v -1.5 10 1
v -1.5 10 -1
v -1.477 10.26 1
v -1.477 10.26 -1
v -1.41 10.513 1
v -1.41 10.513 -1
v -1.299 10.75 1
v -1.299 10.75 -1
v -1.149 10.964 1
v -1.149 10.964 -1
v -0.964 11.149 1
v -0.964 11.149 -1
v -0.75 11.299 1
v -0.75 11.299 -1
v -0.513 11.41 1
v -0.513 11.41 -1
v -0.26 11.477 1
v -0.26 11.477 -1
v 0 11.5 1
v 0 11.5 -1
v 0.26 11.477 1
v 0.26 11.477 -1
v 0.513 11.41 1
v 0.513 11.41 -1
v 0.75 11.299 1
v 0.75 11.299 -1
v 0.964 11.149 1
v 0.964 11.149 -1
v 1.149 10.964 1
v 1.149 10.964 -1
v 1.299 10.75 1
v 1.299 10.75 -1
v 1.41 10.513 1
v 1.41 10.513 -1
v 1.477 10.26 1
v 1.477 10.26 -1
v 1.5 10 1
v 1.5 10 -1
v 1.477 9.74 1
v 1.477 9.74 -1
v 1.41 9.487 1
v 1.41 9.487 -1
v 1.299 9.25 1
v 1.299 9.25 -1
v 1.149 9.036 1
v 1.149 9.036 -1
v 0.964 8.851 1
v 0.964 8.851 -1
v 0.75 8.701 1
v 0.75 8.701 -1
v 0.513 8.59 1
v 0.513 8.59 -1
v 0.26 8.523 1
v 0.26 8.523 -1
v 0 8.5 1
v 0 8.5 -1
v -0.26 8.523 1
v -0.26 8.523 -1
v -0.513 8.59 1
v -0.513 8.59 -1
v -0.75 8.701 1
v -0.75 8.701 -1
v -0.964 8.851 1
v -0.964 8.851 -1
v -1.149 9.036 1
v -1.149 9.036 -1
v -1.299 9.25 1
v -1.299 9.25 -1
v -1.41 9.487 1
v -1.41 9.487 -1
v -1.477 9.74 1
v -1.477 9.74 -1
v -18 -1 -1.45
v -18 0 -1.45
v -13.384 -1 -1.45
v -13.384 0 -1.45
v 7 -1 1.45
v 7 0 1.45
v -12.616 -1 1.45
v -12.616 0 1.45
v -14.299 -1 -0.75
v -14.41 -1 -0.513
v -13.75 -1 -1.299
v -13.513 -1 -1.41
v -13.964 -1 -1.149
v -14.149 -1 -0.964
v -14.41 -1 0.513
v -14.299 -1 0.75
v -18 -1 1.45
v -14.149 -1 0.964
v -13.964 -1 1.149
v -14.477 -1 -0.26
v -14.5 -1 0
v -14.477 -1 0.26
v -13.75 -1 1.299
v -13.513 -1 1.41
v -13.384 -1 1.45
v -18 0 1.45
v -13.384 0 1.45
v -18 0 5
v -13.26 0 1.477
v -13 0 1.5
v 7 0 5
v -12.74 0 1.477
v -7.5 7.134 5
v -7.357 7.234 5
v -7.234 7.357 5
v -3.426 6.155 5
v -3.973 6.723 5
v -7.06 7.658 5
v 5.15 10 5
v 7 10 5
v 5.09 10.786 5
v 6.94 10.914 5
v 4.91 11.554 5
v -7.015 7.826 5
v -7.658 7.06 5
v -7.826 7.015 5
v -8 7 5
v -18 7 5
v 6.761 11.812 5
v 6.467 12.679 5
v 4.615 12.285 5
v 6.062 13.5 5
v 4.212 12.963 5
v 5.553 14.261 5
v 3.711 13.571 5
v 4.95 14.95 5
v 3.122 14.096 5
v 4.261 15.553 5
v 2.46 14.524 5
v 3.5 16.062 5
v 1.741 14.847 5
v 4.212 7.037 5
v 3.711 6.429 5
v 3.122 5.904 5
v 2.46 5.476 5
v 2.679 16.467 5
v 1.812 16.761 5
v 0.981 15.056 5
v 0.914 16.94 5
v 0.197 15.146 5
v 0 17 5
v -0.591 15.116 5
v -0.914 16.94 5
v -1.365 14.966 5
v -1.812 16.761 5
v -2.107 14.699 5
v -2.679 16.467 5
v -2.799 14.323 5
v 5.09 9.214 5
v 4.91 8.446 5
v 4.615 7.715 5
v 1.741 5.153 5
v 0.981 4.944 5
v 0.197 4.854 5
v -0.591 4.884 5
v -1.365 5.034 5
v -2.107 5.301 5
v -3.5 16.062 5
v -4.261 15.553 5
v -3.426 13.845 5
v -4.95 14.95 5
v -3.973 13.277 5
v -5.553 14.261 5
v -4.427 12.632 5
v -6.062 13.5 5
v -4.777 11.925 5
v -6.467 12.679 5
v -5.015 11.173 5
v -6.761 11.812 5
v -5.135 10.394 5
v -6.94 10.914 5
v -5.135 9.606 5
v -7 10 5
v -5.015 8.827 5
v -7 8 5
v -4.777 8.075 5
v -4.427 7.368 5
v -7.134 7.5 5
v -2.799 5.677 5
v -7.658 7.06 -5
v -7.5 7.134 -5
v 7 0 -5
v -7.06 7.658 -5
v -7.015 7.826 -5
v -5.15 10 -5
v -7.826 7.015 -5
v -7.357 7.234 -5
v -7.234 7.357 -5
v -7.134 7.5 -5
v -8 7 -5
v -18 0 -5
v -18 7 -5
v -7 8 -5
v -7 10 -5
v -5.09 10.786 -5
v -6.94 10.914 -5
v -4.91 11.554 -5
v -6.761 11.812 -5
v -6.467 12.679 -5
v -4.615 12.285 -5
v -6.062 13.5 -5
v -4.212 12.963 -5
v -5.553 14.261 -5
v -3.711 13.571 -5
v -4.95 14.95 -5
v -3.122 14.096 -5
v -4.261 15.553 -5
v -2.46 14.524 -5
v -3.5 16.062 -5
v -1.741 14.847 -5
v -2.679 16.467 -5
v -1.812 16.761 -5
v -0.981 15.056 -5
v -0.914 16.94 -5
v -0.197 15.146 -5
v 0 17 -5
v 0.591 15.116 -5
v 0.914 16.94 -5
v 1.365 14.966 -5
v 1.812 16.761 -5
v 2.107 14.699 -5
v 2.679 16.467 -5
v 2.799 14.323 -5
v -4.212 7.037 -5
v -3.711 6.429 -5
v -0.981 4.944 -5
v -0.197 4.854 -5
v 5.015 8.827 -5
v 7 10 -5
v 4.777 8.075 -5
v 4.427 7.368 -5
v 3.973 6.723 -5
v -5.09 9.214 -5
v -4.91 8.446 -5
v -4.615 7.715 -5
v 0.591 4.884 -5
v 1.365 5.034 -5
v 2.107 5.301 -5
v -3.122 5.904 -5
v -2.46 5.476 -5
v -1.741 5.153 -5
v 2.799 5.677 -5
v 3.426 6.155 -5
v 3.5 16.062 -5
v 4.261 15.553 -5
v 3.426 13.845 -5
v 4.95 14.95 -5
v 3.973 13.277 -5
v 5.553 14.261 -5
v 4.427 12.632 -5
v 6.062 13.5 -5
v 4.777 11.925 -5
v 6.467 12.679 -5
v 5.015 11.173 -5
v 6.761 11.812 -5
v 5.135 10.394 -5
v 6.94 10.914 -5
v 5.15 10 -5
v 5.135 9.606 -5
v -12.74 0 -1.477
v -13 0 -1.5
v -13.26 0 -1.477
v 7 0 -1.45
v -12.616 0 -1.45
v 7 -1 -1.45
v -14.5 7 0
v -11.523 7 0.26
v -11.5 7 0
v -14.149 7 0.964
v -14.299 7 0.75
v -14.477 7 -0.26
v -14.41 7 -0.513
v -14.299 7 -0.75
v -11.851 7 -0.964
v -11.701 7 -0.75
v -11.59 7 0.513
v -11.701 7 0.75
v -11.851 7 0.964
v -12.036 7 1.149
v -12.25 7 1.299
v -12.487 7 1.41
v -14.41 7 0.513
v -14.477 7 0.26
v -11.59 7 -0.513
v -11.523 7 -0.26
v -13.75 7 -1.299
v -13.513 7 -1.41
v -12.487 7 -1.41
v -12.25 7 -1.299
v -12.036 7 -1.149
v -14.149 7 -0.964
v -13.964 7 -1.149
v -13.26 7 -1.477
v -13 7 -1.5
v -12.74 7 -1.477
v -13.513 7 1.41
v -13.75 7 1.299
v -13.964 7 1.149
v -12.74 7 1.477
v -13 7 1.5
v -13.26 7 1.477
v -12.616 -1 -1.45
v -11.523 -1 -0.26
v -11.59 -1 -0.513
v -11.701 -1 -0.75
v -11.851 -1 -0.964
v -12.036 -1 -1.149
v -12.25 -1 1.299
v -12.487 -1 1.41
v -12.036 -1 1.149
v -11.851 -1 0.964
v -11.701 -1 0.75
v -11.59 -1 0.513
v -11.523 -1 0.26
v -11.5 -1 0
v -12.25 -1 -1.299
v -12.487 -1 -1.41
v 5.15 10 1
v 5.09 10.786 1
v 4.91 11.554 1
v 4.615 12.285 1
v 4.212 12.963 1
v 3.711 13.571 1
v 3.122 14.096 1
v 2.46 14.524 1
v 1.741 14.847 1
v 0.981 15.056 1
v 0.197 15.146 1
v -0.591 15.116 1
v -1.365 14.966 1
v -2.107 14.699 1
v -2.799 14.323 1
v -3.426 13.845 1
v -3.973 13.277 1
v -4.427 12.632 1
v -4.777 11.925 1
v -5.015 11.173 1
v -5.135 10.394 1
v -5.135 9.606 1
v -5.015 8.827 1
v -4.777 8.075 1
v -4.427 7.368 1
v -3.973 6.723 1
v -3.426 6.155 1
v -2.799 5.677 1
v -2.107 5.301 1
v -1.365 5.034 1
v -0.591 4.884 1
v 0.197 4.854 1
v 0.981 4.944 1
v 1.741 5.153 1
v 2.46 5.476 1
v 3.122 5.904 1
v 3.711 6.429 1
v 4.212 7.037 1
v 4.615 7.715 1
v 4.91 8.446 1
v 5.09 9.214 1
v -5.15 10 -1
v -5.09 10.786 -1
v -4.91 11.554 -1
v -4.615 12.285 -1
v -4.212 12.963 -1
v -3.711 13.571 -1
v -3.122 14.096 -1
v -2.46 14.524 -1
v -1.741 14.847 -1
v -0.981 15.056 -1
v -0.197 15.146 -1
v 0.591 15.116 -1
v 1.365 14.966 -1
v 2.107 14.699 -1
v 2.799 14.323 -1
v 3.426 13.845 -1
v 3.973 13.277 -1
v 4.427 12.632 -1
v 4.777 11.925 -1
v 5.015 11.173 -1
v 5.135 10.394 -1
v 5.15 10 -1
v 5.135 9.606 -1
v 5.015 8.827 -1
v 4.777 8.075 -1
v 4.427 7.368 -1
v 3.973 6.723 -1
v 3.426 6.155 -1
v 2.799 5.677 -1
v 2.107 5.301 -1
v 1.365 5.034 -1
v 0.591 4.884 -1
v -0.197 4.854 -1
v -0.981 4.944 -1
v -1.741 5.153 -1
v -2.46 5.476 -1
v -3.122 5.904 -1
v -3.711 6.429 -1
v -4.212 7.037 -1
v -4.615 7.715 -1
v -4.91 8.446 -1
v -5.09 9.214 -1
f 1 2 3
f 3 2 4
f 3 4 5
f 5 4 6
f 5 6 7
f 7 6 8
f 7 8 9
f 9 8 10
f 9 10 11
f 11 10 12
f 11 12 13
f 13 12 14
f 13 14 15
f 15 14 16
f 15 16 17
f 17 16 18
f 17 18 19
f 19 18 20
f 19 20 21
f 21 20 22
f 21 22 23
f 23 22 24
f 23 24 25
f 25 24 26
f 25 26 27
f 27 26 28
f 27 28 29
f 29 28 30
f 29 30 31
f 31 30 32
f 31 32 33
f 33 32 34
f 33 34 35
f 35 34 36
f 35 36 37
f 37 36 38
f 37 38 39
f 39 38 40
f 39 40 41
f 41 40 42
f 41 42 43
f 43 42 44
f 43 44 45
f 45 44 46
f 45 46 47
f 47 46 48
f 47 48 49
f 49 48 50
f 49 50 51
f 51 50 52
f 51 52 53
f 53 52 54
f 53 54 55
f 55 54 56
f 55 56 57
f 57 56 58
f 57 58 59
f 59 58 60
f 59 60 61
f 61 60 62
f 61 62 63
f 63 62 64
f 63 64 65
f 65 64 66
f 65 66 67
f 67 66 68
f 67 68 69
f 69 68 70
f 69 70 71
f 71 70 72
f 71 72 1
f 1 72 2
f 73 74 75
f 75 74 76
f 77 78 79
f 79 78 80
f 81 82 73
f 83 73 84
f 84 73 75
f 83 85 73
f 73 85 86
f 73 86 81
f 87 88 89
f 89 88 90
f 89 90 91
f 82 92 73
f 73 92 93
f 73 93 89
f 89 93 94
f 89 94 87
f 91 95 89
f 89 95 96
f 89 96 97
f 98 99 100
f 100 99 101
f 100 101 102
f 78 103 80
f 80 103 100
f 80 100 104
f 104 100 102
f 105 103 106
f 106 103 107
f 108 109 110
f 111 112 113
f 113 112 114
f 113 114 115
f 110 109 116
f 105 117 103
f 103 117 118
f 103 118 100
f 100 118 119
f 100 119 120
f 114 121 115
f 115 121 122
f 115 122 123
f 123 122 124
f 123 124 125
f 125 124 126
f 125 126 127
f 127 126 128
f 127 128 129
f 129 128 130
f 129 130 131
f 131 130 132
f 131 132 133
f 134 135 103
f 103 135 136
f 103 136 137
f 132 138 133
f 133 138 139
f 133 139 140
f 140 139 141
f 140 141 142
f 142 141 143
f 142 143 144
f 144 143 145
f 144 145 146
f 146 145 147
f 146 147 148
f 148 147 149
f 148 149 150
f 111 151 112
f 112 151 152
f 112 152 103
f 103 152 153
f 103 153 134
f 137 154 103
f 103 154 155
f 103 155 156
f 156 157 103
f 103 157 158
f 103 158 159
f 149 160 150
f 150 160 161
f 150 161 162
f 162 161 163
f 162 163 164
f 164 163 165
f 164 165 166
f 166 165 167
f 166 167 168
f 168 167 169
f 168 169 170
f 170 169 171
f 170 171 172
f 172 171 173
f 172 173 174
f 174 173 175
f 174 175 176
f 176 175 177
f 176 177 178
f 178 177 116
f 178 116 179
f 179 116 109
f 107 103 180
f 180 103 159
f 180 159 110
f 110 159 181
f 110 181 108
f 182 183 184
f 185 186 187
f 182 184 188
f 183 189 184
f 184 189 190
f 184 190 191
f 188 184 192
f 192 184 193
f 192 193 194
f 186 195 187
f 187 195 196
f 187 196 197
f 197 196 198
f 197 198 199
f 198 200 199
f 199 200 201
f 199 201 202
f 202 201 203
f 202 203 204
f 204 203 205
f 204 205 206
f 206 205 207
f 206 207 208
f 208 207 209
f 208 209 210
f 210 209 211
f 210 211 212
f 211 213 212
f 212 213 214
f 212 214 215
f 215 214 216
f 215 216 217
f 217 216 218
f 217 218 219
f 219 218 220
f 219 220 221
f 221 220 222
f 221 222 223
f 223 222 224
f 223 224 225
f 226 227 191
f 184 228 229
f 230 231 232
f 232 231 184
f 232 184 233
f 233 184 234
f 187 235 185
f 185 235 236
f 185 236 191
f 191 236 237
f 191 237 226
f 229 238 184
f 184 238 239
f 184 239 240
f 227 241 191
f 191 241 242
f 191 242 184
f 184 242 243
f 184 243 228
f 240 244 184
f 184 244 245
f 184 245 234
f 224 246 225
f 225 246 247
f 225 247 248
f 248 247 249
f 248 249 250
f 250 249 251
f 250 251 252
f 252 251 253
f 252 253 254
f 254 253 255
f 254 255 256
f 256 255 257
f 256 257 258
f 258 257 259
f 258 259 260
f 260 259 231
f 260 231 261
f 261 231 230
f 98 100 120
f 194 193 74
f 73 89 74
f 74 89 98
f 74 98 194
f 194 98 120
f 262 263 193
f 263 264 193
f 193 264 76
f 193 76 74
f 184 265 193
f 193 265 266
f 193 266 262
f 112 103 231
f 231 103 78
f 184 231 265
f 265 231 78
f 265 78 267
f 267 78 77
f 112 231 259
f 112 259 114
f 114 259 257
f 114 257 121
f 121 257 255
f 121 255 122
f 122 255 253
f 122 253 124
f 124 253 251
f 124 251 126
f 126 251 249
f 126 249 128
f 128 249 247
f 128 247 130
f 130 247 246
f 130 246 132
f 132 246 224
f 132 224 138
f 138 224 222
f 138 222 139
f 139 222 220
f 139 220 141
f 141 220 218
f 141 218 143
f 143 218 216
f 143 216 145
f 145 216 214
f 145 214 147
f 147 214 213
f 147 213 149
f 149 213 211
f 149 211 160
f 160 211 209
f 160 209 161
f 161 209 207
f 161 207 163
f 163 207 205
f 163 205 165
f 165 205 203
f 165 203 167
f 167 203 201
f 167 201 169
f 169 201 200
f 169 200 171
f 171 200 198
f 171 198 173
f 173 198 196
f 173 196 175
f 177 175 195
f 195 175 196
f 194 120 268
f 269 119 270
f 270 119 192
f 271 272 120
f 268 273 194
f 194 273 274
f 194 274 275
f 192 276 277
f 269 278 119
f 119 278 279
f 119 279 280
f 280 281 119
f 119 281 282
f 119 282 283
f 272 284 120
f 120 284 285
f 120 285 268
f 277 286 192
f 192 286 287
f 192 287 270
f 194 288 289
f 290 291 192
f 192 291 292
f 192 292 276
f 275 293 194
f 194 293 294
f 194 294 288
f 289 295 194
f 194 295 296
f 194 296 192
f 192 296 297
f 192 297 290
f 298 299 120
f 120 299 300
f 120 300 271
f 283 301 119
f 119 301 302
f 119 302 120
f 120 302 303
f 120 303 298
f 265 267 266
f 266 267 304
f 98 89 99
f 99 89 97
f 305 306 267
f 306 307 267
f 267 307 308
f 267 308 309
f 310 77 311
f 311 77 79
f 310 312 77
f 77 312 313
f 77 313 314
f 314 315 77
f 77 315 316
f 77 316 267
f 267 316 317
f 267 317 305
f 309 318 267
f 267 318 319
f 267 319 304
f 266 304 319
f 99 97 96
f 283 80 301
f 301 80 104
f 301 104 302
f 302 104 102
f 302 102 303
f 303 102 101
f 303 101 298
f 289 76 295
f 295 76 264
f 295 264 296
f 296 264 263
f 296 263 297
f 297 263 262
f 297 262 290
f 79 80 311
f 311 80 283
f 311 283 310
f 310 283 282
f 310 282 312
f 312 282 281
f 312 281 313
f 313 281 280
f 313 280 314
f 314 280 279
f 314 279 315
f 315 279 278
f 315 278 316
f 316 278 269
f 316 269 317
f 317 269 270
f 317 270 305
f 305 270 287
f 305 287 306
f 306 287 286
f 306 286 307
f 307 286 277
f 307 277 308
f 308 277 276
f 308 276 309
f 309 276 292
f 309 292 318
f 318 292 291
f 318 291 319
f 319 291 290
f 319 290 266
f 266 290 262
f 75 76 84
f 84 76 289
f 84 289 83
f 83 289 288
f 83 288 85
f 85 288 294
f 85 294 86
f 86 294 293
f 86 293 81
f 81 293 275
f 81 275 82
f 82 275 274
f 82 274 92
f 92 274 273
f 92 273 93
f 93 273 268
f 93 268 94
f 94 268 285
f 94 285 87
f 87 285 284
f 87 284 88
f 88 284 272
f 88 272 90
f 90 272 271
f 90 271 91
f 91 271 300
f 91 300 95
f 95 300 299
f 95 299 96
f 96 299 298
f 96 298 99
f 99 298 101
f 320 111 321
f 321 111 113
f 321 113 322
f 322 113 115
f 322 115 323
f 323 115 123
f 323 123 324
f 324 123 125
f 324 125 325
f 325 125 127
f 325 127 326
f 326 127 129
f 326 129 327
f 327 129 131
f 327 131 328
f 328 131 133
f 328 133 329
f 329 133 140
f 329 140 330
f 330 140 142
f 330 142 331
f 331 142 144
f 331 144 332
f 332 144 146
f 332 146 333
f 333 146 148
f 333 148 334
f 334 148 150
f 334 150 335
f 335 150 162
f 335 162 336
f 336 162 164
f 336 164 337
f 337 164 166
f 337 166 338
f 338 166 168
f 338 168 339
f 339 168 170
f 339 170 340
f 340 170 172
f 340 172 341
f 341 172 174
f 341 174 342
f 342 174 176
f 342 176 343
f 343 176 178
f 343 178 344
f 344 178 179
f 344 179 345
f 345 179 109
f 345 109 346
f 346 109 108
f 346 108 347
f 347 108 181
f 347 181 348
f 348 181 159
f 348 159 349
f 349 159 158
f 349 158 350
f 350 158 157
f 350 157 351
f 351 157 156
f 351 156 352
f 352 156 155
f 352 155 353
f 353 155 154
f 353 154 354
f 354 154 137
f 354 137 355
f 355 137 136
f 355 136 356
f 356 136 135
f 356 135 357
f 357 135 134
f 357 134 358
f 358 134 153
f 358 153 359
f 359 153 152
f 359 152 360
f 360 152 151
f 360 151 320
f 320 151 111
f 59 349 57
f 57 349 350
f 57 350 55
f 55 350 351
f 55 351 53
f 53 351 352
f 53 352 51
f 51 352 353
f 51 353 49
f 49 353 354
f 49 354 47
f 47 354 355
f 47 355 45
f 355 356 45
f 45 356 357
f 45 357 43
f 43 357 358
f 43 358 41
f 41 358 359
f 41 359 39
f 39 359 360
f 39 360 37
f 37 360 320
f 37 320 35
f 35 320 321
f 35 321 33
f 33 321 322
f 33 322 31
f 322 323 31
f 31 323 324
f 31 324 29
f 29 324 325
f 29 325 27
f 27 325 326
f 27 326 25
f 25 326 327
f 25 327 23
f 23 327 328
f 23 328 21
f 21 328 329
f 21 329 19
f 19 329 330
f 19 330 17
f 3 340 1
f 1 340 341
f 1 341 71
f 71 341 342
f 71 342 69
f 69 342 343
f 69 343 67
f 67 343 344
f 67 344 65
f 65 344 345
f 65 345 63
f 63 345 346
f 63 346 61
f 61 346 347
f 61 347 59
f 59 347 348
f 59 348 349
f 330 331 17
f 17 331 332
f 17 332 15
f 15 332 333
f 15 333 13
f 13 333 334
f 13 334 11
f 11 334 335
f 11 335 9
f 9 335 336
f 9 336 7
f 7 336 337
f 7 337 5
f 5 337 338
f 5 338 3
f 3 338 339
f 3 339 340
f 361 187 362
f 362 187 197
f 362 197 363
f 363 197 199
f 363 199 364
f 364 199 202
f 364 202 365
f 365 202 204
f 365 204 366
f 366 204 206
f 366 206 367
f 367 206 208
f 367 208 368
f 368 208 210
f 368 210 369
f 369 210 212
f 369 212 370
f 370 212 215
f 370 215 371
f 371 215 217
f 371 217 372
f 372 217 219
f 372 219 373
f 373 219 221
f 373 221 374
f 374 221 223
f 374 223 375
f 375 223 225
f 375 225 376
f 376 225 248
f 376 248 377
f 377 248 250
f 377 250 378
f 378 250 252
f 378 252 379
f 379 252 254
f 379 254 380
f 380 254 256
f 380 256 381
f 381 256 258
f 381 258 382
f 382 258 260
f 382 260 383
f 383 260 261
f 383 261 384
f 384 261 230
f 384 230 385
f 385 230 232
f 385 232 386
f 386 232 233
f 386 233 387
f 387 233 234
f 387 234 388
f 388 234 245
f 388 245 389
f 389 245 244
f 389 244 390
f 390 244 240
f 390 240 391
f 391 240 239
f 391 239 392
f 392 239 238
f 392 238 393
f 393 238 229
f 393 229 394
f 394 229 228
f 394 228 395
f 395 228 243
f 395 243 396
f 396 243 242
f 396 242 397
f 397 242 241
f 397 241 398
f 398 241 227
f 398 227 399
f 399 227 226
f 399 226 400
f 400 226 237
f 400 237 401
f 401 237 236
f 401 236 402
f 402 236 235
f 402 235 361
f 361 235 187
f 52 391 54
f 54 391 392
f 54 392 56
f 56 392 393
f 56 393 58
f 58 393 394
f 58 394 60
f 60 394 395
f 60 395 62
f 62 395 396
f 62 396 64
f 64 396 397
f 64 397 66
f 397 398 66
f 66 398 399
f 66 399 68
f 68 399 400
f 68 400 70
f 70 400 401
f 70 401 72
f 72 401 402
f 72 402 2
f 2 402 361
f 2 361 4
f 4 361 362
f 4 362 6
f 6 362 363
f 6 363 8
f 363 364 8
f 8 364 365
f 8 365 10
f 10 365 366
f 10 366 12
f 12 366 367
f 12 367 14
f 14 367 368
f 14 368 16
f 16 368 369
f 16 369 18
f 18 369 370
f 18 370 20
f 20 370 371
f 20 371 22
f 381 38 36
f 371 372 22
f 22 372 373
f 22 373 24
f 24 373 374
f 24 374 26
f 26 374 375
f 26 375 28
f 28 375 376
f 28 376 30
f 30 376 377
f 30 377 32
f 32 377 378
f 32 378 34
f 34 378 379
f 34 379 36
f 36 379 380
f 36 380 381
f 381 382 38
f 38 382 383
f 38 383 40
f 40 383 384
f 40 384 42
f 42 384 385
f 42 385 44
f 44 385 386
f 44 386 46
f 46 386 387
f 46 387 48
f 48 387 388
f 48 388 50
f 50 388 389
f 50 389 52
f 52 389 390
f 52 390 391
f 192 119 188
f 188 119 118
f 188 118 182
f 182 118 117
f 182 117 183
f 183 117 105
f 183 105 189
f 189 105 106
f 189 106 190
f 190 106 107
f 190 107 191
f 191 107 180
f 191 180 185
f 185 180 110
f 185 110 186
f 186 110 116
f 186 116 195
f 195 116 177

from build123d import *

# Parameters (mm, degrees)
SKETCH1_R              = 1.5
MAIN_DEPTH             = 5
SKETCH3_W              = 2.9
SKETCH3_H              = 1
MAKERBEAMRAIL_DEPTH    = 25
SKETCH2_R              = 1.5
MAKERBEAMFIXHOLE_DEPTH = 9
SKETCH4_R              = 5.15
ROLLINGHOLE_DEPTH      = 4
FILLET1_R              = 1


with BuildPart() as part:
    # Sketch1 → Main (new body, symmetric)
    with BuildSketch(Plane.XY):
        with BuildLine():
            Line((-18, 0), (7, 0))
            Line((7, 0), (7, 10))
            ThreePointArc((7, 10), (0, 17), (-7, 10))
            Line((-7, 10), (-7, 7))
            Line((-7, 7), (-18, 7))
            Line((-18, 7), (-18, 0))
        make_face()
        with Locations((0, 10)):
            Circle(SKETCH1_R, mode=Mode.SUBTRACT)
    extrude(amount=MAIN_DEPTH, both=True)

    # Sketch3 → MakerBeamRail (add)
    with BuildSketch(Plane.ZY.offset(18)):
        with Locations((0, -0.5)):
            Rectangle(SKETCH3_W, SKETCH3_H)
    extrude(amount=-MAKERBEAMRAIL_DEPTH)

    # Sketch2 → MakerBeamFixHole (cut, through all)
    with BuildSketch(Plane(origin=(0, 7, 0), x_dir=(1, 0, 0), z_dir=(0, 1, 0))):
        with Locations((-13, 0)):
            Circle(SKETCH2_R)
    extrude(amount=-MAKERBEAMFIXHOLE_DEPTH, mode=Mode.SUBTRACT)

    # Sketch4 → RollingHole (cut)
    with BuildSketch(Plane.XY.offset(5)):
        with Locations((0, 10)):
            Circle(SKETCH4_R)
    rollinghole = extrude(amount=-ROLLINGHOLE_DEPTH, mode=Mode.SUBTRACT)

    # MirrorRollingHole: RollingHole across plane
    add(rollinghole.mirror(Plane.XY), mode=Mode.SUBTRACT)

    # Fillet1
    fillet1_edges = [part.edges().sort_by_distance(p)[0] for p in [
        (-7, 7, 0),
    ]]
    fillet(fillet1_edges, radius=FILLET1_R)


solid = part.part
